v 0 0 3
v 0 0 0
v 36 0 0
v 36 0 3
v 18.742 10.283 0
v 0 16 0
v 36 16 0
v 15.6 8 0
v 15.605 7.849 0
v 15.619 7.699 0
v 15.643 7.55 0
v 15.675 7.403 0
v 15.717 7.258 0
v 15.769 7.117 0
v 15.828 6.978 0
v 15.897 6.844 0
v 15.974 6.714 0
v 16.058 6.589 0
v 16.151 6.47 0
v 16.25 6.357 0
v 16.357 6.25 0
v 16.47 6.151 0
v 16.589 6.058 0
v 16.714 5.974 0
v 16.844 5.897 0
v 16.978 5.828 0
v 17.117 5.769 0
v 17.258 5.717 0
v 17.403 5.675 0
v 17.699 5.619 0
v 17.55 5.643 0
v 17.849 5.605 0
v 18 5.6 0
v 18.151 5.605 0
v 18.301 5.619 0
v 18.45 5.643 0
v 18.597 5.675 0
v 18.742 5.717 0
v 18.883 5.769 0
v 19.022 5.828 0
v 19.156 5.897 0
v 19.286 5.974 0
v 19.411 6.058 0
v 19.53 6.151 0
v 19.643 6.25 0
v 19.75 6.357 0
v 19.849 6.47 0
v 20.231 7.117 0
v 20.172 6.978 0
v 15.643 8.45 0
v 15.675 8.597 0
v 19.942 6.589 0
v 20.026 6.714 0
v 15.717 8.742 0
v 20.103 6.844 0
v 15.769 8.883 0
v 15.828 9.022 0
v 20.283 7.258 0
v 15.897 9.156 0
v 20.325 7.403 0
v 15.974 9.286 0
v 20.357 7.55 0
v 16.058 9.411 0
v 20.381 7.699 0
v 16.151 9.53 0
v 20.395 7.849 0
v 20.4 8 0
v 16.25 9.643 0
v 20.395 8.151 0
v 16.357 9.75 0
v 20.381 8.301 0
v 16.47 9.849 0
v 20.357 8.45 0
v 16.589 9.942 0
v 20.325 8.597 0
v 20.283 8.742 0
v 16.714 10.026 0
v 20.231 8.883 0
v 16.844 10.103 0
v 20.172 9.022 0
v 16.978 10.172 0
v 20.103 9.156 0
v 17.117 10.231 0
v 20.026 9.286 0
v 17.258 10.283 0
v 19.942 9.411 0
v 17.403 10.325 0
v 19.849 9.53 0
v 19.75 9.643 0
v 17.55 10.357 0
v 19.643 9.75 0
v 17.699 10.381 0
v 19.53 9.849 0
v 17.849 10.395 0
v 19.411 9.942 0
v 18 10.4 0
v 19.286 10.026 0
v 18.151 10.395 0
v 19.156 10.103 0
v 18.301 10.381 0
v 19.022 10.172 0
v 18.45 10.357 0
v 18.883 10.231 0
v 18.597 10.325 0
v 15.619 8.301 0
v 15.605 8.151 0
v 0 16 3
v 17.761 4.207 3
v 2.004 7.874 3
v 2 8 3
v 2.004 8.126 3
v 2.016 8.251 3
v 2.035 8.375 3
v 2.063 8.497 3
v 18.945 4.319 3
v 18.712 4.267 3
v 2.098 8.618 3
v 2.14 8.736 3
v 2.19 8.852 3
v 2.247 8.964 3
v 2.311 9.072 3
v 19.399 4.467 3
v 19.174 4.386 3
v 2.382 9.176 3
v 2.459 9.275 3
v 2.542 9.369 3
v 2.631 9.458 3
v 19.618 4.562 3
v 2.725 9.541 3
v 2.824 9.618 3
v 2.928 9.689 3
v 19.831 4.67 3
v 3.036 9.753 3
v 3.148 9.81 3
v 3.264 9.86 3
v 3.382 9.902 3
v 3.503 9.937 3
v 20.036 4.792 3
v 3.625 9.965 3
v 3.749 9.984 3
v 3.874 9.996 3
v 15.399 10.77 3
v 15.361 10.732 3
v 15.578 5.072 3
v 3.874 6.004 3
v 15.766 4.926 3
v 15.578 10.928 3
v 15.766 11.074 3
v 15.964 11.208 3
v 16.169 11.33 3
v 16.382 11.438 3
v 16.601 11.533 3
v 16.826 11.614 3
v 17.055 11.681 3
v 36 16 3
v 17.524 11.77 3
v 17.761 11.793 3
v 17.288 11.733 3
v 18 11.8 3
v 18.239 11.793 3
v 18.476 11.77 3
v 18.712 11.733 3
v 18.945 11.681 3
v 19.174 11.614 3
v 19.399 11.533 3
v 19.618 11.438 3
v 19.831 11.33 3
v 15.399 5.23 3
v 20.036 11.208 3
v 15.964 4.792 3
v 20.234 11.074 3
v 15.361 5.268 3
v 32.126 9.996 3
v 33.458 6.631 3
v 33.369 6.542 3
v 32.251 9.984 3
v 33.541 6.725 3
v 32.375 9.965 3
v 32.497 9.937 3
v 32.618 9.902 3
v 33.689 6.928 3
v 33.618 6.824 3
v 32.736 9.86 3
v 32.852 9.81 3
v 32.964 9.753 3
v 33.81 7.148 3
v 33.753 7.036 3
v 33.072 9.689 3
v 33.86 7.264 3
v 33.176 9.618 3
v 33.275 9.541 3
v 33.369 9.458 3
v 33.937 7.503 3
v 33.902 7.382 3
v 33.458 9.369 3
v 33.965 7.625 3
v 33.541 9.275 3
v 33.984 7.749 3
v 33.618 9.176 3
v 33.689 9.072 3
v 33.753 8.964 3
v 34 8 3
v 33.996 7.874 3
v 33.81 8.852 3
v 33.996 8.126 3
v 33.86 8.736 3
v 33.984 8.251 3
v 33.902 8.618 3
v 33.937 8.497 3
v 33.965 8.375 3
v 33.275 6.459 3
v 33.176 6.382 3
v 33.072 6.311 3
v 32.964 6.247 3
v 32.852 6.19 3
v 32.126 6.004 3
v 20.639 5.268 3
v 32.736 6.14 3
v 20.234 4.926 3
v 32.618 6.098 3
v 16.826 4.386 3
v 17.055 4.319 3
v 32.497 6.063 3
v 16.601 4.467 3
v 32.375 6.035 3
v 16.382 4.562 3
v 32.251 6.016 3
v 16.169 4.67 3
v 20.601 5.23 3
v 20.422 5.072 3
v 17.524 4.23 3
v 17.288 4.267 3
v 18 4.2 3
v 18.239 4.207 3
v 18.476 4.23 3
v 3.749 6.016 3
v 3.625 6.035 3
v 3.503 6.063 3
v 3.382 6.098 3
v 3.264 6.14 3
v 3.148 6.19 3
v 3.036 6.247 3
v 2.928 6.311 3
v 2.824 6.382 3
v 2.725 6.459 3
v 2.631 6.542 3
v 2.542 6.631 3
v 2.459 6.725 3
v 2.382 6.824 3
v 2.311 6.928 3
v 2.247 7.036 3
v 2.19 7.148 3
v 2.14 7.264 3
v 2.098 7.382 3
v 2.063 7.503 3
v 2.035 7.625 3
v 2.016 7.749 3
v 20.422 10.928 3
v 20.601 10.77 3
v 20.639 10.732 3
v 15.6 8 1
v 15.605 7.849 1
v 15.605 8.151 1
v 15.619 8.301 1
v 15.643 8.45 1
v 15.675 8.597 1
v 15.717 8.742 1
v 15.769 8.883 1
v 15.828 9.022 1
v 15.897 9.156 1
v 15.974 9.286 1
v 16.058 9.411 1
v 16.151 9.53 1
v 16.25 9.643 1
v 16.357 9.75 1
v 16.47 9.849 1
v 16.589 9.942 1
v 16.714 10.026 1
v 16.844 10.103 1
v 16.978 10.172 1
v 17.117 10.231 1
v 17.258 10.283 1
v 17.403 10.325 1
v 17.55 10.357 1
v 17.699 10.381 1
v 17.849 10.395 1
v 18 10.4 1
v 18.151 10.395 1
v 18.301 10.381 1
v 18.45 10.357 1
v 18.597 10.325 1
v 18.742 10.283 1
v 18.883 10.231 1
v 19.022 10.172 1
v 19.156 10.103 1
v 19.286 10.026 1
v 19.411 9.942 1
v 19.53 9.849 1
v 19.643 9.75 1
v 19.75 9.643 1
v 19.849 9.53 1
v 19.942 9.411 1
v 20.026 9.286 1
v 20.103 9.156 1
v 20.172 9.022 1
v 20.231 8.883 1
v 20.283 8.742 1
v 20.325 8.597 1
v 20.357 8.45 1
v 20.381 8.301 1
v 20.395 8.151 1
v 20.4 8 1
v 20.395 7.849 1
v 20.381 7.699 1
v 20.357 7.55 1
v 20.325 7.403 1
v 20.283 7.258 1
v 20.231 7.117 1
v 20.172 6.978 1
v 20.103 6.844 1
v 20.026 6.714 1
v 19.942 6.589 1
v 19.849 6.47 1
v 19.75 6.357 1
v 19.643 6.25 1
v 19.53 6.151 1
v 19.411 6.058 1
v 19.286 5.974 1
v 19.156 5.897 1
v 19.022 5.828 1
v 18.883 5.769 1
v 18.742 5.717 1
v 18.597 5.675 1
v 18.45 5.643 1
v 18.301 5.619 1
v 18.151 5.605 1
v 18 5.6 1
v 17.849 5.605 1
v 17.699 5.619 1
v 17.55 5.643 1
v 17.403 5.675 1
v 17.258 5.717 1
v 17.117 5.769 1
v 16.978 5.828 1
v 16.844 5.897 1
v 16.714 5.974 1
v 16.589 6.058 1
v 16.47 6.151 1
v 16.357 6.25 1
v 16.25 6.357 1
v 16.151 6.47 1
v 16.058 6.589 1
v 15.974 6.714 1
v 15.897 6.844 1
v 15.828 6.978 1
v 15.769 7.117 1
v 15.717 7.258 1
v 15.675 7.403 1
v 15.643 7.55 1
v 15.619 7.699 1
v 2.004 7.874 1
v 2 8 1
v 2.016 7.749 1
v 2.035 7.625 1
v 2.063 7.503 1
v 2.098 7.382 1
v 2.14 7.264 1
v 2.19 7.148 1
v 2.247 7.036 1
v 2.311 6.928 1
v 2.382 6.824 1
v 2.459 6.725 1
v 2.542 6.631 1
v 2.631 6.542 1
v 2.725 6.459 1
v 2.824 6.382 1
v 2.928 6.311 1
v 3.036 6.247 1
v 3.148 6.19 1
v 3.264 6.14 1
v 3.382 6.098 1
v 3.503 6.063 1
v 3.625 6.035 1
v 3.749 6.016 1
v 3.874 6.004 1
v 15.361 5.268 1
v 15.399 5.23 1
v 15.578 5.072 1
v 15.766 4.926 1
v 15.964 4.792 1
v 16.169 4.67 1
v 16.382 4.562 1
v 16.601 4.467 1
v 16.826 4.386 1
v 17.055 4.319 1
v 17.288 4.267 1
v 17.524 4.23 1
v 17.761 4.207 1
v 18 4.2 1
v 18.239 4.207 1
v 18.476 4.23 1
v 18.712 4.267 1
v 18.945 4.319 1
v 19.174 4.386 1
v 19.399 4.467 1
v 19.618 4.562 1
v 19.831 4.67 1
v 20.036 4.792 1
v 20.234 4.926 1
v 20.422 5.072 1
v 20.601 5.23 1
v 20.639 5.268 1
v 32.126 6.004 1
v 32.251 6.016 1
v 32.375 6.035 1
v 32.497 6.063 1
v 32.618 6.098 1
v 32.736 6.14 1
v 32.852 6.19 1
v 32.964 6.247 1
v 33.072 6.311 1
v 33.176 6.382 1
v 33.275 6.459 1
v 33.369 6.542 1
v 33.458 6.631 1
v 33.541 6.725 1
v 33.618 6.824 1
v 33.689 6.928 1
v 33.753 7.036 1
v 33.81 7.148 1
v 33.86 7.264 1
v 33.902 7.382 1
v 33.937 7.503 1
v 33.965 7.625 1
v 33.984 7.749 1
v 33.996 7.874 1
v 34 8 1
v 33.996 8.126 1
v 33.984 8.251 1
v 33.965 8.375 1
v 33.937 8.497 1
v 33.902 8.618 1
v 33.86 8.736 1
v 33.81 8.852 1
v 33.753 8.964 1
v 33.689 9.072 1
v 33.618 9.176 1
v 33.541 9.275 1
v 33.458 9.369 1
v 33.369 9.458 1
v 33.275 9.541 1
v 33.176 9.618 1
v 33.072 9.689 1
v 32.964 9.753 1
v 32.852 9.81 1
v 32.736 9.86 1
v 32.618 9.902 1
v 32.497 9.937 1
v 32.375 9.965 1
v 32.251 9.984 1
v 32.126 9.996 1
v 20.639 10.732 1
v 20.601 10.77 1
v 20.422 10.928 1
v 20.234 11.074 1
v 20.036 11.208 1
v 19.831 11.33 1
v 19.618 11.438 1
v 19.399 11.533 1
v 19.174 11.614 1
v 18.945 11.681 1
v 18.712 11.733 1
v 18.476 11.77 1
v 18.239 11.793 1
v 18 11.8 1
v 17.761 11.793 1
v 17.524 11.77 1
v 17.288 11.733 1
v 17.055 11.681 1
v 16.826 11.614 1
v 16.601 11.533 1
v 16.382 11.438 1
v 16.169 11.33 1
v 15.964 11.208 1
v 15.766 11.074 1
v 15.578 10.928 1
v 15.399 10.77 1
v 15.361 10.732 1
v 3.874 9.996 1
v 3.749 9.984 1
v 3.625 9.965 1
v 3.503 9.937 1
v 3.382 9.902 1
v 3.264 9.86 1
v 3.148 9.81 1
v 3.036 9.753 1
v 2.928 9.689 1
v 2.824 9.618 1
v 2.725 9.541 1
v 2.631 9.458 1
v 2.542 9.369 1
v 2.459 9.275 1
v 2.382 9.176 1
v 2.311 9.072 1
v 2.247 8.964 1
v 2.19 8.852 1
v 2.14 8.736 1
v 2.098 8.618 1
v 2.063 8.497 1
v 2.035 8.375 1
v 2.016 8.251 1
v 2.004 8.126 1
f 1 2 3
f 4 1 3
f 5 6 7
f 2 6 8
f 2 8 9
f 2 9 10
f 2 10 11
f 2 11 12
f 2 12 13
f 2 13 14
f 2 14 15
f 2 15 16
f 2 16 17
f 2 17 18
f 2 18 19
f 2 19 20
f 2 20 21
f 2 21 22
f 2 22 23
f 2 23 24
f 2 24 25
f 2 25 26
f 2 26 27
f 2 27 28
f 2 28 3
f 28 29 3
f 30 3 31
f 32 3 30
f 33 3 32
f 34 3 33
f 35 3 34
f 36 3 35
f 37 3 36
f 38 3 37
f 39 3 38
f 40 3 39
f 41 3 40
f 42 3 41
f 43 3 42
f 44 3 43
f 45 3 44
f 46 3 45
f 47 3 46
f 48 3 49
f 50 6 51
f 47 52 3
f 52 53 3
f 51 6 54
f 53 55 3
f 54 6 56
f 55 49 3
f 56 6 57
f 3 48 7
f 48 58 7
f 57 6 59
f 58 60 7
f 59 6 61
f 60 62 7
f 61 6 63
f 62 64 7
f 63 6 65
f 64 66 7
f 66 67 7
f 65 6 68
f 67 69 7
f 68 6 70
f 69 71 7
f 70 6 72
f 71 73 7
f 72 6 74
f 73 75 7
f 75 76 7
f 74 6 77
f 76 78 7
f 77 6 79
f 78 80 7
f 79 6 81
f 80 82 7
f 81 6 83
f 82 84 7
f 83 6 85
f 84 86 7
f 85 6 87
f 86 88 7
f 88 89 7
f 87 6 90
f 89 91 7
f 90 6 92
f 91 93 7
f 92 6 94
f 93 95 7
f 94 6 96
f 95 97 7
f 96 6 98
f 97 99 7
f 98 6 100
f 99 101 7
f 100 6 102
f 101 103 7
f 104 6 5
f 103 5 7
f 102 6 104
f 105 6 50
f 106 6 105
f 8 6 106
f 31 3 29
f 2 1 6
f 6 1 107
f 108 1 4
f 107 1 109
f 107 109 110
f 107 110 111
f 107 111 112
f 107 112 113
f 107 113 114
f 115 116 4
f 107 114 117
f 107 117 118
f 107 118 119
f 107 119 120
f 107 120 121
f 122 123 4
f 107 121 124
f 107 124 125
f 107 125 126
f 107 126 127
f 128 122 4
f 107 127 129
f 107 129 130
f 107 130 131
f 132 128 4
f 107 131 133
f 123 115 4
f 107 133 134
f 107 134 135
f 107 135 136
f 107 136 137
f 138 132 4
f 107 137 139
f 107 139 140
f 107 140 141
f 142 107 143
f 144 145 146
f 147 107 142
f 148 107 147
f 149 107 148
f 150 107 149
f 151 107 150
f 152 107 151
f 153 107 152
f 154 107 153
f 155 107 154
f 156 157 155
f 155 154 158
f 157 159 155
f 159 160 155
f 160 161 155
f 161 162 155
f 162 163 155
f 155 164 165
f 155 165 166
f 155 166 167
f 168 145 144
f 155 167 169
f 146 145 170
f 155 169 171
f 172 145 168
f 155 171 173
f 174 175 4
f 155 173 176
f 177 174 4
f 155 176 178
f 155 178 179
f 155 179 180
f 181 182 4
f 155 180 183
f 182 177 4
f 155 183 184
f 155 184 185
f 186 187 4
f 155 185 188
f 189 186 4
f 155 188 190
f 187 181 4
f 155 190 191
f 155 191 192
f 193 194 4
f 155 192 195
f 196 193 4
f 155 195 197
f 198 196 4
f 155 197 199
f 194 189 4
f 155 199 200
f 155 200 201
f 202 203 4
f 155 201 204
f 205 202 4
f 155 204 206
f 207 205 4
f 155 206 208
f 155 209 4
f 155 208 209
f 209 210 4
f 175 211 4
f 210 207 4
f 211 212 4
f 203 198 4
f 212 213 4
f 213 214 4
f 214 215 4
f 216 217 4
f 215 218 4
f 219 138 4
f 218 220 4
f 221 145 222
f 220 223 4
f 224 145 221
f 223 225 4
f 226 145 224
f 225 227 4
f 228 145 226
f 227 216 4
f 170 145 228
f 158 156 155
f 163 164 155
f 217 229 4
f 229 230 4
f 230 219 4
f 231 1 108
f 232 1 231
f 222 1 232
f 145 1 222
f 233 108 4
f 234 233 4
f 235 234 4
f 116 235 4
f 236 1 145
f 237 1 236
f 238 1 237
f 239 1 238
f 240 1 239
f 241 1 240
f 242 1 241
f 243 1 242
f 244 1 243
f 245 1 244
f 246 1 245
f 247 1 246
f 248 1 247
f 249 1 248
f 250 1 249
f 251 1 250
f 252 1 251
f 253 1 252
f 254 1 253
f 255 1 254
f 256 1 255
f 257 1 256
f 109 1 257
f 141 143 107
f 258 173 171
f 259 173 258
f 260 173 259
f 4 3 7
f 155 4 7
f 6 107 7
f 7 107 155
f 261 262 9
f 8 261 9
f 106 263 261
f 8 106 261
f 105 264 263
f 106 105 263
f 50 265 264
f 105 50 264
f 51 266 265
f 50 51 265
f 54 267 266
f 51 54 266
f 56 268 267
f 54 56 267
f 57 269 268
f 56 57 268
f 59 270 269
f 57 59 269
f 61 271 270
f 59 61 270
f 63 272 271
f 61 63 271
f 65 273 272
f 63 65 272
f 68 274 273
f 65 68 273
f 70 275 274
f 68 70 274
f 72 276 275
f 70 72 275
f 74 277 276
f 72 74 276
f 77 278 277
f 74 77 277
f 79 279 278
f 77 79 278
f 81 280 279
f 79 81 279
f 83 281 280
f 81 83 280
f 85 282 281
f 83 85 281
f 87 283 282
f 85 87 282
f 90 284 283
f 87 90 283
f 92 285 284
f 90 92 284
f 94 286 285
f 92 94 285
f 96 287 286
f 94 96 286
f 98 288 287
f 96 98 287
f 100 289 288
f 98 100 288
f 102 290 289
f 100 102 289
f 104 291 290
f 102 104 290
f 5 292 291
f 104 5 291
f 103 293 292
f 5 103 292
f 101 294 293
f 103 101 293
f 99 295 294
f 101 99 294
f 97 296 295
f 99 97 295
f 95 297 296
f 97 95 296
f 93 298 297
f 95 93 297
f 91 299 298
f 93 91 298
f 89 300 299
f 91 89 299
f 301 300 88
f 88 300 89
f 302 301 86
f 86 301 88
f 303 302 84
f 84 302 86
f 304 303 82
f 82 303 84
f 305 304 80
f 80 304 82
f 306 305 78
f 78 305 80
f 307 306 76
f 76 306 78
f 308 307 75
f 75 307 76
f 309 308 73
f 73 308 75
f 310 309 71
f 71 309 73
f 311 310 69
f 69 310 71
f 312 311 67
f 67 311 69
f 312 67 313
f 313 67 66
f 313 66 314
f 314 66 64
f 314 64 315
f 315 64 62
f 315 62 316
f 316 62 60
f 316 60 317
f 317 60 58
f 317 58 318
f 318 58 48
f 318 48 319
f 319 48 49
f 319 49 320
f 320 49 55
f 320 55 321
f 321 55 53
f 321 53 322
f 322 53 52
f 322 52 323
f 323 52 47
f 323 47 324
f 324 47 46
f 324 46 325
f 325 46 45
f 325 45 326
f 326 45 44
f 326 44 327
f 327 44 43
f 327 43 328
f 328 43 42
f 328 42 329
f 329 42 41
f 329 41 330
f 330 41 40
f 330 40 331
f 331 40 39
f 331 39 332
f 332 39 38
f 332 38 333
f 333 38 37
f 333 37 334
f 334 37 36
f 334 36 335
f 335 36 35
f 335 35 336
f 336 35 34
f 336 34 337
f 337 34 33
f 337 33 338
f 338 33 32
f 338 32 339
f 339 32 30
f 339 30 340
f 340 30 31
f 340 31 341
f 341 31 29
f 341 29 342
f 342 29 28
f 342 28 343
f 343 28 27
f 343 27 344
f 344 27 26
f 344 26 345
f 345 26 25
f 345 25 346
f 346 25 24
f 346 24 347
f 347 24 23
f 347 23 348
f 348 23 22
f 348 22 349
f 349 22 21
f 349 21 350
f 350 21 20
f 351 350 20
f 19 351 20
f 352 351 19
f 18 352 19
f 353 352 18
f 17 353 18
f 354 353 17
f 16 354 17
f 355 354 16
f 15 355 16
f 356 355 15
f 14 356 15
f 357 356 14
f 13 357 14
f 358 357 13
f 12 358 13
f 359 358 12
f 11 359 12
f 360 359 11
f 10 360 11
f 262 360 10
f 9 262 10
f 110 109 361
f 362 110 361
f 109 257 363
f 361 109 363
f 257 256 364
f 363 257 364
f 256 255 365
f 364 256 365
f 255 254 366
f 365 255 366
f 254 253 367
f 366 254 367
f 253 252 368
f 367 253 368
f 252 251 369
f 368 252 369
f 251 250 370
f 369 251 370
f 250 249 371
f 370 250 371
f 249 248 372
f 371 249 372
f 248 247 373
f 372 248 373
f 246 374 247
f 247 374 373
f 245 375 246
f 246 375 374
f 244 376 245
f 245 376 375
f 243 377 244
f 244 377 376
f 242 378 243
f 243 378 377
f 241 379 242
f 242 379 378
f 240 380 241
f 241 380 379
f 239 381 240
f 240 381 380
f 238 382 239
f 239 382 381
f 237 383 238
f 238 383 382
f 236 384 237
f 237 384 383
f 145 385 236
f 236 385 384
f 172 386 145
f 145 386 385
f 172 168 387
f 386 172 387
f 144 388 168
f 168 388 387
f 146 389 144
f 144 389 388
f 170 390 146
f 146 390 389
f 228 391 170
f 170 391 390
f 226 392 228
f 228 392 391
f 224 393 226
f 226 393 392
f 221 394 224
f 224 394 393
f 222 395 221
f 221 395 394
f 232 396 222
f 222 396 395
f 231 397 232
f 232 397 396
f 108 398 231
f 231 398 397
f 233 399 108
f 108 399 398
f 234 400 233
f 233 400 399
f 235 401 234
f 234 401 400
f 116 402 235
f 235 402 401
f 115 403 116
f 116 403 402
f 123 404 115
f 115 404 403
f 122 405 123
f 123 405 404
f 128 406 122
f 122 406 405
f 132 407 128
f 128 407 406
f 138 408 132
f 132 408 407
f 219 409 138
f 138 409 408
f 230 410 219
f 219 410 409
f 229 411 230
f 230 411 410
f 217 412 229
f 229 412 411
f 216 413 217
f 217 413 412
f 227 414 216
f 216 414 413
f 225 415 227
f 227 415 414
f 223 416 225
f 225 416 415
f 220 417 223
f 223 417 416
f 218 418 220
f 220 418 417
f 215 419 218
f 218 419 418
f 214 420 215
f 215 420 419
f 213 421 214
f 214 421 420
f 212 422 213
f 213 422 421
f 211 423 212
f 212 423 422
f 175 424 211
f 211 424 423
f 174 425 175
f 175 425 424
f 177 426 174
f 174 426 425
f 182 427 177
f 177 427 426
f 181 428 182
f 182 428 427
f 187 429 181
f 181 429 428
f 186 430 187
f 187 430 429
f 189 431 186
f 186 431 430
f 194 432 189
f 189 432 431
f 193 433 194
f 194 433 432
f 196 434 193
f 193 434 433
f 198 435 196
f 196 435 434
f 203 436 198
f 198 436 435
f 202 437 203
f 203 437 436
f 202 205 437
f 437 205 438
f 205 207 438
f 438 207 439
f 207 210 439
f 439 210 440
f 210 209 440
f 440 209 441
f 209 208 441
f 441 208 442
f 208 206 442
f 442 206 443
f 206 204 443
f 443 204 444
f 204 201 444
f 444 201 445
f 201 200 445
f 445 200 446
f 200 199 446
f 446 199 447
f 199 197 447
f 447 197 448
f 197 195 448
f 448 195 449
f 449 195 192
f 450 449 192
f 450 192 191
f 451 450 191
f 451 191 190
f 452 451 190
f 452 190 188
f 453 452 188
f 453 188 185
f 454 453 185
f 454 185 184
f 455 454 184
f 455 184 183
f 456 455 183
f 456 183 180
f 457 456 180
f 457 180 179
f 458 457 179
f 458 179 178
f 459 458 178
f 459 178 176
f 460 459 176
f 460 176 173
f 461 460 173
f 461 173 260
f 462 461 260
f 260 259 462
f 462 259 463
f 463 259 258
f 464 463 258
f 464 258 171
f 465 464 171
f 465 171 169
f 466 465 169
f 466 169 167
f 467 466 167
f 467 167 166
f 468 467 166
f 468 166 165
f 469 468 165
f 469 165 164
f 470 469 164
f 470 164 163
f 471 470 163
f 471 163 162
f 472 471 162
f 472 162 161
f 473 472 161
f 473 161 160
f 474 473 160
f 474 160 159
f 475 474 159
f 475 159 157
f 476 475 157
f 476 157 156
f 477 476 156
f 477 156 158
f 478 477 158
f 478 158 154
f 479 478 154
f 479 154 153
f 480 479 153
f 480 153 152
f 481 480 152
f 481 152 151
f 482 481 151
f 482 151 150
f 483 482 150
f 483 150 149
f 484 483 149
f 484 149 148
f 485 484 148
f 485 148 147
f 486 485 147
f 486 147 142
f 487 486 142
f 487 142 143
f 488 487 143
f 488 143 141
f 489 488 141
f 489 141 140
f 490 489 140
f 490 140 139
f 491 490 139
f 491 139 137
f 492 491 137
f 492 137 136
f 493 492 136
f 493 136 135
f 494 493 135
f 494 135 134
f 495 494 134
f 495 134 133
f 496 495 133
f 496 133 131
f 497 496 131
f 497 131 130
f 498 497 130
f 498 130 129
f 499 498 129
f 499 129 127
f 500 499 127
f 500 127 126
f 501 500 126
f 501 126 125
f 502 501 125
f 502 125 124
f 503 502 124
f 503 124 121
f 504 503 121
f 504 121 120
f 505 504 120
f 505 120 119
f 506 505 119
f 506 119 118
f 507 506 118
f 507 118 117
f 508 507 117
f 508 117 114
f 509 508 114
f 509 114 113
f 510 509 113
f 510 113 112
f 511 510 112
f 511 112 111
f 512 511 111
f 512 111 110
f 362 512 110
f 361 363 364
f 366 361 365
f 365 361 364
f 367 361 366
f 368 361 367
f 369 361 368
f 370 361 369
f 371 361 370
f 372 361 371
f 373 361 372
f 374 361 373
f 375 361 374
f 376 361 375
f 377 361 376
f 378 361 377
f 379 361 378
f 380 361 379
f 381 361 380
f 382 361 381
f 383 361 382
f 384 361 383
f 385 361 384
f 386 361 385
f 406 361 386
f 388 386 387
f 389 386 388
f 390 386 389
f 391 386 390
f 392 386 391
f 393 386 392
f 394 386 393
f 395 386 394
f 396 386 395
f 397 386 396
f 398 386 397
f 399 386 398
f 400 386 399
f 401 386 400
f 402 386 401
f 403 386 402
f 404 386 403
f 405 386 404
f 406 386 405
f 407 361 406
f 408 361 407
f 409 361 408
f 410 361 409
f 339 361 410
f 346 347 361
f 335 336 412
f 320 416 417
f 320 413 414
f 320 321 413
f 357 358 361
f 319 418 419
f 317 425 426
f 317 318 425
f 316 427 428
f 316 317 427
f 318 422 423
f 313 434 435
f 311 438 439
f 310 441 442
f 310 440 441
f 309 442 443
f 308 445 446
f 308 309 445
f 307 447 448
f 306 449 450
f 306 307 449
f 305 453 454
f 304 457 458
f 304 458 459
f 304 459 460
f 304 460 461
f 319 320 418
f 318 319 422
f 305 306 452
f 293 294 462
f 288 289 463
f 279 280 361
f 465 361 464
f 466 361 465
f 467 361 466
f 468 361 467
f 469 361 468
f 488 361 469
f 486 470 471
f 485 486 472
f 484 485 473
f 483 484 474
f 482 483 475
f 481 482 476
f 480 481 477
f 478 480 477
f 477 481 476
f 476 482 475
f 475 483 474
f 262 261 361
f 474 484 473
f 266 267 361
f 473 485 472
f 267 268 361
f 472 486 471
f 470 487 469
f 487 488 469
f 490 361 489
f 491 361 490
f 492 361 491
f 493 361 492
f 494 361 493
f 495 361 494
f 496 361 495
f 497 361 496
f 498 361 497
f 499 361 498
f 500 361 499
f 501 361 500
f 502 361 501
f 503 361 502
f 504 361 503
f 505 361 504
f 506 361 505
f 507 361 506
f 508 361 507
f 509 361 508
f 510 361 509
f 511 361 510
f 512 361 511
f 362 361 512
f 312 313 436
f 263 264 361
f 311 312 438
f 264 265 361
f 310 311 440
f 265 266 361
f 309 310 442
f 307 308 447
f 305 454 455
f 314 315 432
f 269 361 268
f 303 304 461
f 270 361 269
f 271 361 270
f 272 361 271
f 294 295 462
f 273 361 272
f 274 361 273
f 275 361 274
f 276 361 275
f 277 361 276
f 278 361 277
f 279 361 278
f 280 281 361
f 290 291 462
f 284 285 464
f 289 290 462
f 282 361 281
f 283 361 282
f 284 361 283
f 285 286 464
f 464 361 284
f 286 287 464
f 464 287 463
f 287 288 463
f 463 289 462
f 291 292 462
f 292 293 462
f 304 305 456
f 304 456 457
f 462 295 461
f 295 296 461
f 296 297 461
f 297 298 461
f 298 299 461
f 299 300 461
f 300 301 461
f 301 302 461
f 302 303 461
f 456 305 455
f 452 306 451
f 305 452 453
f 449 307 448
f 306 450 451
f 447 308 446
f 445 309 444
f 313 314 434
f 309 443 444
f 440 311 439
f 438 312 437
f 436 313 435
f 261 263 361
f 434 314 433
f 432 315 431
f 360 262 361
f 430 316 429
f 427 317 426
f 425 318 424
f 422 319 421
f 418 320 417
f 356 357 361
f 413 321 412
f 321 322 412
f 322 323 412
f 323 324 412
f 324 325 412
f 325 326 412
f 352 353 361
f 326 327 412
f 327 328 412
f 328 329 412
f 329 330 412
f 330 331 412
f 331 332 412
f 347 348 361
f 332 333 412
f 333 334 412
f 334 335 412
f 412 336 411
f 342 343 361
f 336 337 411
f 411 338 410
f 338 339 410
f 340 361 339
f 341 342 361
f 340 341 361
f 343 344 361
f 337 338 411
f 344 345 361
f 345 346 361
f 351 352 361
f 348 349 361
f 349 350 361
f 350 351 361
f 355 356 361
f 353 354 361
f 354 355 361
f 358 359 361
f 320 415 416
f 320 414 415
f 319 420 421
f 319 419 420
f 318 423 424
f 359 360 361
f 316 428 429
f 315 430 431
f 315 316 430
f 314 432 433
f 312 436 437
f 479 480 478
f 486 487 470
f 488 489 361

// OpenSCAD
$fn=100;


servoarminner();

module servoarminner () {

 difference () {

   linear_extrude( height=3)
   color ( "blue") 
   polygon( [ [0,0],[36,0],[36,16],[0,16] ] , [   [0,1,2,3] ]);
  
   color("red")
   translate ([18,8,1]) 
   linear_extrude(height=2)	
   servoarm();

	color ("red")
	translate([18,8,0])
	linear_extrude(height=1.2)
	circle(d=4.8);

  }

}
module servoarm() {
 union() {

      color("red")
	   circle(d=7.6);

	

	  hull() 
	  {
 
 	   color( "red") 
 	   translate([1.5,0,0]) circle (d= 5.6);
 	   translate([14,0,0]) circle (d=4);
	  }

	  hull() 
	  { 	
 
 	   color("red")
 	   translate([-1.5,0,0]) circle ( d=5.6);
 	   translate([-14,0,0]) circle (d=4);
	  }

 }
}
